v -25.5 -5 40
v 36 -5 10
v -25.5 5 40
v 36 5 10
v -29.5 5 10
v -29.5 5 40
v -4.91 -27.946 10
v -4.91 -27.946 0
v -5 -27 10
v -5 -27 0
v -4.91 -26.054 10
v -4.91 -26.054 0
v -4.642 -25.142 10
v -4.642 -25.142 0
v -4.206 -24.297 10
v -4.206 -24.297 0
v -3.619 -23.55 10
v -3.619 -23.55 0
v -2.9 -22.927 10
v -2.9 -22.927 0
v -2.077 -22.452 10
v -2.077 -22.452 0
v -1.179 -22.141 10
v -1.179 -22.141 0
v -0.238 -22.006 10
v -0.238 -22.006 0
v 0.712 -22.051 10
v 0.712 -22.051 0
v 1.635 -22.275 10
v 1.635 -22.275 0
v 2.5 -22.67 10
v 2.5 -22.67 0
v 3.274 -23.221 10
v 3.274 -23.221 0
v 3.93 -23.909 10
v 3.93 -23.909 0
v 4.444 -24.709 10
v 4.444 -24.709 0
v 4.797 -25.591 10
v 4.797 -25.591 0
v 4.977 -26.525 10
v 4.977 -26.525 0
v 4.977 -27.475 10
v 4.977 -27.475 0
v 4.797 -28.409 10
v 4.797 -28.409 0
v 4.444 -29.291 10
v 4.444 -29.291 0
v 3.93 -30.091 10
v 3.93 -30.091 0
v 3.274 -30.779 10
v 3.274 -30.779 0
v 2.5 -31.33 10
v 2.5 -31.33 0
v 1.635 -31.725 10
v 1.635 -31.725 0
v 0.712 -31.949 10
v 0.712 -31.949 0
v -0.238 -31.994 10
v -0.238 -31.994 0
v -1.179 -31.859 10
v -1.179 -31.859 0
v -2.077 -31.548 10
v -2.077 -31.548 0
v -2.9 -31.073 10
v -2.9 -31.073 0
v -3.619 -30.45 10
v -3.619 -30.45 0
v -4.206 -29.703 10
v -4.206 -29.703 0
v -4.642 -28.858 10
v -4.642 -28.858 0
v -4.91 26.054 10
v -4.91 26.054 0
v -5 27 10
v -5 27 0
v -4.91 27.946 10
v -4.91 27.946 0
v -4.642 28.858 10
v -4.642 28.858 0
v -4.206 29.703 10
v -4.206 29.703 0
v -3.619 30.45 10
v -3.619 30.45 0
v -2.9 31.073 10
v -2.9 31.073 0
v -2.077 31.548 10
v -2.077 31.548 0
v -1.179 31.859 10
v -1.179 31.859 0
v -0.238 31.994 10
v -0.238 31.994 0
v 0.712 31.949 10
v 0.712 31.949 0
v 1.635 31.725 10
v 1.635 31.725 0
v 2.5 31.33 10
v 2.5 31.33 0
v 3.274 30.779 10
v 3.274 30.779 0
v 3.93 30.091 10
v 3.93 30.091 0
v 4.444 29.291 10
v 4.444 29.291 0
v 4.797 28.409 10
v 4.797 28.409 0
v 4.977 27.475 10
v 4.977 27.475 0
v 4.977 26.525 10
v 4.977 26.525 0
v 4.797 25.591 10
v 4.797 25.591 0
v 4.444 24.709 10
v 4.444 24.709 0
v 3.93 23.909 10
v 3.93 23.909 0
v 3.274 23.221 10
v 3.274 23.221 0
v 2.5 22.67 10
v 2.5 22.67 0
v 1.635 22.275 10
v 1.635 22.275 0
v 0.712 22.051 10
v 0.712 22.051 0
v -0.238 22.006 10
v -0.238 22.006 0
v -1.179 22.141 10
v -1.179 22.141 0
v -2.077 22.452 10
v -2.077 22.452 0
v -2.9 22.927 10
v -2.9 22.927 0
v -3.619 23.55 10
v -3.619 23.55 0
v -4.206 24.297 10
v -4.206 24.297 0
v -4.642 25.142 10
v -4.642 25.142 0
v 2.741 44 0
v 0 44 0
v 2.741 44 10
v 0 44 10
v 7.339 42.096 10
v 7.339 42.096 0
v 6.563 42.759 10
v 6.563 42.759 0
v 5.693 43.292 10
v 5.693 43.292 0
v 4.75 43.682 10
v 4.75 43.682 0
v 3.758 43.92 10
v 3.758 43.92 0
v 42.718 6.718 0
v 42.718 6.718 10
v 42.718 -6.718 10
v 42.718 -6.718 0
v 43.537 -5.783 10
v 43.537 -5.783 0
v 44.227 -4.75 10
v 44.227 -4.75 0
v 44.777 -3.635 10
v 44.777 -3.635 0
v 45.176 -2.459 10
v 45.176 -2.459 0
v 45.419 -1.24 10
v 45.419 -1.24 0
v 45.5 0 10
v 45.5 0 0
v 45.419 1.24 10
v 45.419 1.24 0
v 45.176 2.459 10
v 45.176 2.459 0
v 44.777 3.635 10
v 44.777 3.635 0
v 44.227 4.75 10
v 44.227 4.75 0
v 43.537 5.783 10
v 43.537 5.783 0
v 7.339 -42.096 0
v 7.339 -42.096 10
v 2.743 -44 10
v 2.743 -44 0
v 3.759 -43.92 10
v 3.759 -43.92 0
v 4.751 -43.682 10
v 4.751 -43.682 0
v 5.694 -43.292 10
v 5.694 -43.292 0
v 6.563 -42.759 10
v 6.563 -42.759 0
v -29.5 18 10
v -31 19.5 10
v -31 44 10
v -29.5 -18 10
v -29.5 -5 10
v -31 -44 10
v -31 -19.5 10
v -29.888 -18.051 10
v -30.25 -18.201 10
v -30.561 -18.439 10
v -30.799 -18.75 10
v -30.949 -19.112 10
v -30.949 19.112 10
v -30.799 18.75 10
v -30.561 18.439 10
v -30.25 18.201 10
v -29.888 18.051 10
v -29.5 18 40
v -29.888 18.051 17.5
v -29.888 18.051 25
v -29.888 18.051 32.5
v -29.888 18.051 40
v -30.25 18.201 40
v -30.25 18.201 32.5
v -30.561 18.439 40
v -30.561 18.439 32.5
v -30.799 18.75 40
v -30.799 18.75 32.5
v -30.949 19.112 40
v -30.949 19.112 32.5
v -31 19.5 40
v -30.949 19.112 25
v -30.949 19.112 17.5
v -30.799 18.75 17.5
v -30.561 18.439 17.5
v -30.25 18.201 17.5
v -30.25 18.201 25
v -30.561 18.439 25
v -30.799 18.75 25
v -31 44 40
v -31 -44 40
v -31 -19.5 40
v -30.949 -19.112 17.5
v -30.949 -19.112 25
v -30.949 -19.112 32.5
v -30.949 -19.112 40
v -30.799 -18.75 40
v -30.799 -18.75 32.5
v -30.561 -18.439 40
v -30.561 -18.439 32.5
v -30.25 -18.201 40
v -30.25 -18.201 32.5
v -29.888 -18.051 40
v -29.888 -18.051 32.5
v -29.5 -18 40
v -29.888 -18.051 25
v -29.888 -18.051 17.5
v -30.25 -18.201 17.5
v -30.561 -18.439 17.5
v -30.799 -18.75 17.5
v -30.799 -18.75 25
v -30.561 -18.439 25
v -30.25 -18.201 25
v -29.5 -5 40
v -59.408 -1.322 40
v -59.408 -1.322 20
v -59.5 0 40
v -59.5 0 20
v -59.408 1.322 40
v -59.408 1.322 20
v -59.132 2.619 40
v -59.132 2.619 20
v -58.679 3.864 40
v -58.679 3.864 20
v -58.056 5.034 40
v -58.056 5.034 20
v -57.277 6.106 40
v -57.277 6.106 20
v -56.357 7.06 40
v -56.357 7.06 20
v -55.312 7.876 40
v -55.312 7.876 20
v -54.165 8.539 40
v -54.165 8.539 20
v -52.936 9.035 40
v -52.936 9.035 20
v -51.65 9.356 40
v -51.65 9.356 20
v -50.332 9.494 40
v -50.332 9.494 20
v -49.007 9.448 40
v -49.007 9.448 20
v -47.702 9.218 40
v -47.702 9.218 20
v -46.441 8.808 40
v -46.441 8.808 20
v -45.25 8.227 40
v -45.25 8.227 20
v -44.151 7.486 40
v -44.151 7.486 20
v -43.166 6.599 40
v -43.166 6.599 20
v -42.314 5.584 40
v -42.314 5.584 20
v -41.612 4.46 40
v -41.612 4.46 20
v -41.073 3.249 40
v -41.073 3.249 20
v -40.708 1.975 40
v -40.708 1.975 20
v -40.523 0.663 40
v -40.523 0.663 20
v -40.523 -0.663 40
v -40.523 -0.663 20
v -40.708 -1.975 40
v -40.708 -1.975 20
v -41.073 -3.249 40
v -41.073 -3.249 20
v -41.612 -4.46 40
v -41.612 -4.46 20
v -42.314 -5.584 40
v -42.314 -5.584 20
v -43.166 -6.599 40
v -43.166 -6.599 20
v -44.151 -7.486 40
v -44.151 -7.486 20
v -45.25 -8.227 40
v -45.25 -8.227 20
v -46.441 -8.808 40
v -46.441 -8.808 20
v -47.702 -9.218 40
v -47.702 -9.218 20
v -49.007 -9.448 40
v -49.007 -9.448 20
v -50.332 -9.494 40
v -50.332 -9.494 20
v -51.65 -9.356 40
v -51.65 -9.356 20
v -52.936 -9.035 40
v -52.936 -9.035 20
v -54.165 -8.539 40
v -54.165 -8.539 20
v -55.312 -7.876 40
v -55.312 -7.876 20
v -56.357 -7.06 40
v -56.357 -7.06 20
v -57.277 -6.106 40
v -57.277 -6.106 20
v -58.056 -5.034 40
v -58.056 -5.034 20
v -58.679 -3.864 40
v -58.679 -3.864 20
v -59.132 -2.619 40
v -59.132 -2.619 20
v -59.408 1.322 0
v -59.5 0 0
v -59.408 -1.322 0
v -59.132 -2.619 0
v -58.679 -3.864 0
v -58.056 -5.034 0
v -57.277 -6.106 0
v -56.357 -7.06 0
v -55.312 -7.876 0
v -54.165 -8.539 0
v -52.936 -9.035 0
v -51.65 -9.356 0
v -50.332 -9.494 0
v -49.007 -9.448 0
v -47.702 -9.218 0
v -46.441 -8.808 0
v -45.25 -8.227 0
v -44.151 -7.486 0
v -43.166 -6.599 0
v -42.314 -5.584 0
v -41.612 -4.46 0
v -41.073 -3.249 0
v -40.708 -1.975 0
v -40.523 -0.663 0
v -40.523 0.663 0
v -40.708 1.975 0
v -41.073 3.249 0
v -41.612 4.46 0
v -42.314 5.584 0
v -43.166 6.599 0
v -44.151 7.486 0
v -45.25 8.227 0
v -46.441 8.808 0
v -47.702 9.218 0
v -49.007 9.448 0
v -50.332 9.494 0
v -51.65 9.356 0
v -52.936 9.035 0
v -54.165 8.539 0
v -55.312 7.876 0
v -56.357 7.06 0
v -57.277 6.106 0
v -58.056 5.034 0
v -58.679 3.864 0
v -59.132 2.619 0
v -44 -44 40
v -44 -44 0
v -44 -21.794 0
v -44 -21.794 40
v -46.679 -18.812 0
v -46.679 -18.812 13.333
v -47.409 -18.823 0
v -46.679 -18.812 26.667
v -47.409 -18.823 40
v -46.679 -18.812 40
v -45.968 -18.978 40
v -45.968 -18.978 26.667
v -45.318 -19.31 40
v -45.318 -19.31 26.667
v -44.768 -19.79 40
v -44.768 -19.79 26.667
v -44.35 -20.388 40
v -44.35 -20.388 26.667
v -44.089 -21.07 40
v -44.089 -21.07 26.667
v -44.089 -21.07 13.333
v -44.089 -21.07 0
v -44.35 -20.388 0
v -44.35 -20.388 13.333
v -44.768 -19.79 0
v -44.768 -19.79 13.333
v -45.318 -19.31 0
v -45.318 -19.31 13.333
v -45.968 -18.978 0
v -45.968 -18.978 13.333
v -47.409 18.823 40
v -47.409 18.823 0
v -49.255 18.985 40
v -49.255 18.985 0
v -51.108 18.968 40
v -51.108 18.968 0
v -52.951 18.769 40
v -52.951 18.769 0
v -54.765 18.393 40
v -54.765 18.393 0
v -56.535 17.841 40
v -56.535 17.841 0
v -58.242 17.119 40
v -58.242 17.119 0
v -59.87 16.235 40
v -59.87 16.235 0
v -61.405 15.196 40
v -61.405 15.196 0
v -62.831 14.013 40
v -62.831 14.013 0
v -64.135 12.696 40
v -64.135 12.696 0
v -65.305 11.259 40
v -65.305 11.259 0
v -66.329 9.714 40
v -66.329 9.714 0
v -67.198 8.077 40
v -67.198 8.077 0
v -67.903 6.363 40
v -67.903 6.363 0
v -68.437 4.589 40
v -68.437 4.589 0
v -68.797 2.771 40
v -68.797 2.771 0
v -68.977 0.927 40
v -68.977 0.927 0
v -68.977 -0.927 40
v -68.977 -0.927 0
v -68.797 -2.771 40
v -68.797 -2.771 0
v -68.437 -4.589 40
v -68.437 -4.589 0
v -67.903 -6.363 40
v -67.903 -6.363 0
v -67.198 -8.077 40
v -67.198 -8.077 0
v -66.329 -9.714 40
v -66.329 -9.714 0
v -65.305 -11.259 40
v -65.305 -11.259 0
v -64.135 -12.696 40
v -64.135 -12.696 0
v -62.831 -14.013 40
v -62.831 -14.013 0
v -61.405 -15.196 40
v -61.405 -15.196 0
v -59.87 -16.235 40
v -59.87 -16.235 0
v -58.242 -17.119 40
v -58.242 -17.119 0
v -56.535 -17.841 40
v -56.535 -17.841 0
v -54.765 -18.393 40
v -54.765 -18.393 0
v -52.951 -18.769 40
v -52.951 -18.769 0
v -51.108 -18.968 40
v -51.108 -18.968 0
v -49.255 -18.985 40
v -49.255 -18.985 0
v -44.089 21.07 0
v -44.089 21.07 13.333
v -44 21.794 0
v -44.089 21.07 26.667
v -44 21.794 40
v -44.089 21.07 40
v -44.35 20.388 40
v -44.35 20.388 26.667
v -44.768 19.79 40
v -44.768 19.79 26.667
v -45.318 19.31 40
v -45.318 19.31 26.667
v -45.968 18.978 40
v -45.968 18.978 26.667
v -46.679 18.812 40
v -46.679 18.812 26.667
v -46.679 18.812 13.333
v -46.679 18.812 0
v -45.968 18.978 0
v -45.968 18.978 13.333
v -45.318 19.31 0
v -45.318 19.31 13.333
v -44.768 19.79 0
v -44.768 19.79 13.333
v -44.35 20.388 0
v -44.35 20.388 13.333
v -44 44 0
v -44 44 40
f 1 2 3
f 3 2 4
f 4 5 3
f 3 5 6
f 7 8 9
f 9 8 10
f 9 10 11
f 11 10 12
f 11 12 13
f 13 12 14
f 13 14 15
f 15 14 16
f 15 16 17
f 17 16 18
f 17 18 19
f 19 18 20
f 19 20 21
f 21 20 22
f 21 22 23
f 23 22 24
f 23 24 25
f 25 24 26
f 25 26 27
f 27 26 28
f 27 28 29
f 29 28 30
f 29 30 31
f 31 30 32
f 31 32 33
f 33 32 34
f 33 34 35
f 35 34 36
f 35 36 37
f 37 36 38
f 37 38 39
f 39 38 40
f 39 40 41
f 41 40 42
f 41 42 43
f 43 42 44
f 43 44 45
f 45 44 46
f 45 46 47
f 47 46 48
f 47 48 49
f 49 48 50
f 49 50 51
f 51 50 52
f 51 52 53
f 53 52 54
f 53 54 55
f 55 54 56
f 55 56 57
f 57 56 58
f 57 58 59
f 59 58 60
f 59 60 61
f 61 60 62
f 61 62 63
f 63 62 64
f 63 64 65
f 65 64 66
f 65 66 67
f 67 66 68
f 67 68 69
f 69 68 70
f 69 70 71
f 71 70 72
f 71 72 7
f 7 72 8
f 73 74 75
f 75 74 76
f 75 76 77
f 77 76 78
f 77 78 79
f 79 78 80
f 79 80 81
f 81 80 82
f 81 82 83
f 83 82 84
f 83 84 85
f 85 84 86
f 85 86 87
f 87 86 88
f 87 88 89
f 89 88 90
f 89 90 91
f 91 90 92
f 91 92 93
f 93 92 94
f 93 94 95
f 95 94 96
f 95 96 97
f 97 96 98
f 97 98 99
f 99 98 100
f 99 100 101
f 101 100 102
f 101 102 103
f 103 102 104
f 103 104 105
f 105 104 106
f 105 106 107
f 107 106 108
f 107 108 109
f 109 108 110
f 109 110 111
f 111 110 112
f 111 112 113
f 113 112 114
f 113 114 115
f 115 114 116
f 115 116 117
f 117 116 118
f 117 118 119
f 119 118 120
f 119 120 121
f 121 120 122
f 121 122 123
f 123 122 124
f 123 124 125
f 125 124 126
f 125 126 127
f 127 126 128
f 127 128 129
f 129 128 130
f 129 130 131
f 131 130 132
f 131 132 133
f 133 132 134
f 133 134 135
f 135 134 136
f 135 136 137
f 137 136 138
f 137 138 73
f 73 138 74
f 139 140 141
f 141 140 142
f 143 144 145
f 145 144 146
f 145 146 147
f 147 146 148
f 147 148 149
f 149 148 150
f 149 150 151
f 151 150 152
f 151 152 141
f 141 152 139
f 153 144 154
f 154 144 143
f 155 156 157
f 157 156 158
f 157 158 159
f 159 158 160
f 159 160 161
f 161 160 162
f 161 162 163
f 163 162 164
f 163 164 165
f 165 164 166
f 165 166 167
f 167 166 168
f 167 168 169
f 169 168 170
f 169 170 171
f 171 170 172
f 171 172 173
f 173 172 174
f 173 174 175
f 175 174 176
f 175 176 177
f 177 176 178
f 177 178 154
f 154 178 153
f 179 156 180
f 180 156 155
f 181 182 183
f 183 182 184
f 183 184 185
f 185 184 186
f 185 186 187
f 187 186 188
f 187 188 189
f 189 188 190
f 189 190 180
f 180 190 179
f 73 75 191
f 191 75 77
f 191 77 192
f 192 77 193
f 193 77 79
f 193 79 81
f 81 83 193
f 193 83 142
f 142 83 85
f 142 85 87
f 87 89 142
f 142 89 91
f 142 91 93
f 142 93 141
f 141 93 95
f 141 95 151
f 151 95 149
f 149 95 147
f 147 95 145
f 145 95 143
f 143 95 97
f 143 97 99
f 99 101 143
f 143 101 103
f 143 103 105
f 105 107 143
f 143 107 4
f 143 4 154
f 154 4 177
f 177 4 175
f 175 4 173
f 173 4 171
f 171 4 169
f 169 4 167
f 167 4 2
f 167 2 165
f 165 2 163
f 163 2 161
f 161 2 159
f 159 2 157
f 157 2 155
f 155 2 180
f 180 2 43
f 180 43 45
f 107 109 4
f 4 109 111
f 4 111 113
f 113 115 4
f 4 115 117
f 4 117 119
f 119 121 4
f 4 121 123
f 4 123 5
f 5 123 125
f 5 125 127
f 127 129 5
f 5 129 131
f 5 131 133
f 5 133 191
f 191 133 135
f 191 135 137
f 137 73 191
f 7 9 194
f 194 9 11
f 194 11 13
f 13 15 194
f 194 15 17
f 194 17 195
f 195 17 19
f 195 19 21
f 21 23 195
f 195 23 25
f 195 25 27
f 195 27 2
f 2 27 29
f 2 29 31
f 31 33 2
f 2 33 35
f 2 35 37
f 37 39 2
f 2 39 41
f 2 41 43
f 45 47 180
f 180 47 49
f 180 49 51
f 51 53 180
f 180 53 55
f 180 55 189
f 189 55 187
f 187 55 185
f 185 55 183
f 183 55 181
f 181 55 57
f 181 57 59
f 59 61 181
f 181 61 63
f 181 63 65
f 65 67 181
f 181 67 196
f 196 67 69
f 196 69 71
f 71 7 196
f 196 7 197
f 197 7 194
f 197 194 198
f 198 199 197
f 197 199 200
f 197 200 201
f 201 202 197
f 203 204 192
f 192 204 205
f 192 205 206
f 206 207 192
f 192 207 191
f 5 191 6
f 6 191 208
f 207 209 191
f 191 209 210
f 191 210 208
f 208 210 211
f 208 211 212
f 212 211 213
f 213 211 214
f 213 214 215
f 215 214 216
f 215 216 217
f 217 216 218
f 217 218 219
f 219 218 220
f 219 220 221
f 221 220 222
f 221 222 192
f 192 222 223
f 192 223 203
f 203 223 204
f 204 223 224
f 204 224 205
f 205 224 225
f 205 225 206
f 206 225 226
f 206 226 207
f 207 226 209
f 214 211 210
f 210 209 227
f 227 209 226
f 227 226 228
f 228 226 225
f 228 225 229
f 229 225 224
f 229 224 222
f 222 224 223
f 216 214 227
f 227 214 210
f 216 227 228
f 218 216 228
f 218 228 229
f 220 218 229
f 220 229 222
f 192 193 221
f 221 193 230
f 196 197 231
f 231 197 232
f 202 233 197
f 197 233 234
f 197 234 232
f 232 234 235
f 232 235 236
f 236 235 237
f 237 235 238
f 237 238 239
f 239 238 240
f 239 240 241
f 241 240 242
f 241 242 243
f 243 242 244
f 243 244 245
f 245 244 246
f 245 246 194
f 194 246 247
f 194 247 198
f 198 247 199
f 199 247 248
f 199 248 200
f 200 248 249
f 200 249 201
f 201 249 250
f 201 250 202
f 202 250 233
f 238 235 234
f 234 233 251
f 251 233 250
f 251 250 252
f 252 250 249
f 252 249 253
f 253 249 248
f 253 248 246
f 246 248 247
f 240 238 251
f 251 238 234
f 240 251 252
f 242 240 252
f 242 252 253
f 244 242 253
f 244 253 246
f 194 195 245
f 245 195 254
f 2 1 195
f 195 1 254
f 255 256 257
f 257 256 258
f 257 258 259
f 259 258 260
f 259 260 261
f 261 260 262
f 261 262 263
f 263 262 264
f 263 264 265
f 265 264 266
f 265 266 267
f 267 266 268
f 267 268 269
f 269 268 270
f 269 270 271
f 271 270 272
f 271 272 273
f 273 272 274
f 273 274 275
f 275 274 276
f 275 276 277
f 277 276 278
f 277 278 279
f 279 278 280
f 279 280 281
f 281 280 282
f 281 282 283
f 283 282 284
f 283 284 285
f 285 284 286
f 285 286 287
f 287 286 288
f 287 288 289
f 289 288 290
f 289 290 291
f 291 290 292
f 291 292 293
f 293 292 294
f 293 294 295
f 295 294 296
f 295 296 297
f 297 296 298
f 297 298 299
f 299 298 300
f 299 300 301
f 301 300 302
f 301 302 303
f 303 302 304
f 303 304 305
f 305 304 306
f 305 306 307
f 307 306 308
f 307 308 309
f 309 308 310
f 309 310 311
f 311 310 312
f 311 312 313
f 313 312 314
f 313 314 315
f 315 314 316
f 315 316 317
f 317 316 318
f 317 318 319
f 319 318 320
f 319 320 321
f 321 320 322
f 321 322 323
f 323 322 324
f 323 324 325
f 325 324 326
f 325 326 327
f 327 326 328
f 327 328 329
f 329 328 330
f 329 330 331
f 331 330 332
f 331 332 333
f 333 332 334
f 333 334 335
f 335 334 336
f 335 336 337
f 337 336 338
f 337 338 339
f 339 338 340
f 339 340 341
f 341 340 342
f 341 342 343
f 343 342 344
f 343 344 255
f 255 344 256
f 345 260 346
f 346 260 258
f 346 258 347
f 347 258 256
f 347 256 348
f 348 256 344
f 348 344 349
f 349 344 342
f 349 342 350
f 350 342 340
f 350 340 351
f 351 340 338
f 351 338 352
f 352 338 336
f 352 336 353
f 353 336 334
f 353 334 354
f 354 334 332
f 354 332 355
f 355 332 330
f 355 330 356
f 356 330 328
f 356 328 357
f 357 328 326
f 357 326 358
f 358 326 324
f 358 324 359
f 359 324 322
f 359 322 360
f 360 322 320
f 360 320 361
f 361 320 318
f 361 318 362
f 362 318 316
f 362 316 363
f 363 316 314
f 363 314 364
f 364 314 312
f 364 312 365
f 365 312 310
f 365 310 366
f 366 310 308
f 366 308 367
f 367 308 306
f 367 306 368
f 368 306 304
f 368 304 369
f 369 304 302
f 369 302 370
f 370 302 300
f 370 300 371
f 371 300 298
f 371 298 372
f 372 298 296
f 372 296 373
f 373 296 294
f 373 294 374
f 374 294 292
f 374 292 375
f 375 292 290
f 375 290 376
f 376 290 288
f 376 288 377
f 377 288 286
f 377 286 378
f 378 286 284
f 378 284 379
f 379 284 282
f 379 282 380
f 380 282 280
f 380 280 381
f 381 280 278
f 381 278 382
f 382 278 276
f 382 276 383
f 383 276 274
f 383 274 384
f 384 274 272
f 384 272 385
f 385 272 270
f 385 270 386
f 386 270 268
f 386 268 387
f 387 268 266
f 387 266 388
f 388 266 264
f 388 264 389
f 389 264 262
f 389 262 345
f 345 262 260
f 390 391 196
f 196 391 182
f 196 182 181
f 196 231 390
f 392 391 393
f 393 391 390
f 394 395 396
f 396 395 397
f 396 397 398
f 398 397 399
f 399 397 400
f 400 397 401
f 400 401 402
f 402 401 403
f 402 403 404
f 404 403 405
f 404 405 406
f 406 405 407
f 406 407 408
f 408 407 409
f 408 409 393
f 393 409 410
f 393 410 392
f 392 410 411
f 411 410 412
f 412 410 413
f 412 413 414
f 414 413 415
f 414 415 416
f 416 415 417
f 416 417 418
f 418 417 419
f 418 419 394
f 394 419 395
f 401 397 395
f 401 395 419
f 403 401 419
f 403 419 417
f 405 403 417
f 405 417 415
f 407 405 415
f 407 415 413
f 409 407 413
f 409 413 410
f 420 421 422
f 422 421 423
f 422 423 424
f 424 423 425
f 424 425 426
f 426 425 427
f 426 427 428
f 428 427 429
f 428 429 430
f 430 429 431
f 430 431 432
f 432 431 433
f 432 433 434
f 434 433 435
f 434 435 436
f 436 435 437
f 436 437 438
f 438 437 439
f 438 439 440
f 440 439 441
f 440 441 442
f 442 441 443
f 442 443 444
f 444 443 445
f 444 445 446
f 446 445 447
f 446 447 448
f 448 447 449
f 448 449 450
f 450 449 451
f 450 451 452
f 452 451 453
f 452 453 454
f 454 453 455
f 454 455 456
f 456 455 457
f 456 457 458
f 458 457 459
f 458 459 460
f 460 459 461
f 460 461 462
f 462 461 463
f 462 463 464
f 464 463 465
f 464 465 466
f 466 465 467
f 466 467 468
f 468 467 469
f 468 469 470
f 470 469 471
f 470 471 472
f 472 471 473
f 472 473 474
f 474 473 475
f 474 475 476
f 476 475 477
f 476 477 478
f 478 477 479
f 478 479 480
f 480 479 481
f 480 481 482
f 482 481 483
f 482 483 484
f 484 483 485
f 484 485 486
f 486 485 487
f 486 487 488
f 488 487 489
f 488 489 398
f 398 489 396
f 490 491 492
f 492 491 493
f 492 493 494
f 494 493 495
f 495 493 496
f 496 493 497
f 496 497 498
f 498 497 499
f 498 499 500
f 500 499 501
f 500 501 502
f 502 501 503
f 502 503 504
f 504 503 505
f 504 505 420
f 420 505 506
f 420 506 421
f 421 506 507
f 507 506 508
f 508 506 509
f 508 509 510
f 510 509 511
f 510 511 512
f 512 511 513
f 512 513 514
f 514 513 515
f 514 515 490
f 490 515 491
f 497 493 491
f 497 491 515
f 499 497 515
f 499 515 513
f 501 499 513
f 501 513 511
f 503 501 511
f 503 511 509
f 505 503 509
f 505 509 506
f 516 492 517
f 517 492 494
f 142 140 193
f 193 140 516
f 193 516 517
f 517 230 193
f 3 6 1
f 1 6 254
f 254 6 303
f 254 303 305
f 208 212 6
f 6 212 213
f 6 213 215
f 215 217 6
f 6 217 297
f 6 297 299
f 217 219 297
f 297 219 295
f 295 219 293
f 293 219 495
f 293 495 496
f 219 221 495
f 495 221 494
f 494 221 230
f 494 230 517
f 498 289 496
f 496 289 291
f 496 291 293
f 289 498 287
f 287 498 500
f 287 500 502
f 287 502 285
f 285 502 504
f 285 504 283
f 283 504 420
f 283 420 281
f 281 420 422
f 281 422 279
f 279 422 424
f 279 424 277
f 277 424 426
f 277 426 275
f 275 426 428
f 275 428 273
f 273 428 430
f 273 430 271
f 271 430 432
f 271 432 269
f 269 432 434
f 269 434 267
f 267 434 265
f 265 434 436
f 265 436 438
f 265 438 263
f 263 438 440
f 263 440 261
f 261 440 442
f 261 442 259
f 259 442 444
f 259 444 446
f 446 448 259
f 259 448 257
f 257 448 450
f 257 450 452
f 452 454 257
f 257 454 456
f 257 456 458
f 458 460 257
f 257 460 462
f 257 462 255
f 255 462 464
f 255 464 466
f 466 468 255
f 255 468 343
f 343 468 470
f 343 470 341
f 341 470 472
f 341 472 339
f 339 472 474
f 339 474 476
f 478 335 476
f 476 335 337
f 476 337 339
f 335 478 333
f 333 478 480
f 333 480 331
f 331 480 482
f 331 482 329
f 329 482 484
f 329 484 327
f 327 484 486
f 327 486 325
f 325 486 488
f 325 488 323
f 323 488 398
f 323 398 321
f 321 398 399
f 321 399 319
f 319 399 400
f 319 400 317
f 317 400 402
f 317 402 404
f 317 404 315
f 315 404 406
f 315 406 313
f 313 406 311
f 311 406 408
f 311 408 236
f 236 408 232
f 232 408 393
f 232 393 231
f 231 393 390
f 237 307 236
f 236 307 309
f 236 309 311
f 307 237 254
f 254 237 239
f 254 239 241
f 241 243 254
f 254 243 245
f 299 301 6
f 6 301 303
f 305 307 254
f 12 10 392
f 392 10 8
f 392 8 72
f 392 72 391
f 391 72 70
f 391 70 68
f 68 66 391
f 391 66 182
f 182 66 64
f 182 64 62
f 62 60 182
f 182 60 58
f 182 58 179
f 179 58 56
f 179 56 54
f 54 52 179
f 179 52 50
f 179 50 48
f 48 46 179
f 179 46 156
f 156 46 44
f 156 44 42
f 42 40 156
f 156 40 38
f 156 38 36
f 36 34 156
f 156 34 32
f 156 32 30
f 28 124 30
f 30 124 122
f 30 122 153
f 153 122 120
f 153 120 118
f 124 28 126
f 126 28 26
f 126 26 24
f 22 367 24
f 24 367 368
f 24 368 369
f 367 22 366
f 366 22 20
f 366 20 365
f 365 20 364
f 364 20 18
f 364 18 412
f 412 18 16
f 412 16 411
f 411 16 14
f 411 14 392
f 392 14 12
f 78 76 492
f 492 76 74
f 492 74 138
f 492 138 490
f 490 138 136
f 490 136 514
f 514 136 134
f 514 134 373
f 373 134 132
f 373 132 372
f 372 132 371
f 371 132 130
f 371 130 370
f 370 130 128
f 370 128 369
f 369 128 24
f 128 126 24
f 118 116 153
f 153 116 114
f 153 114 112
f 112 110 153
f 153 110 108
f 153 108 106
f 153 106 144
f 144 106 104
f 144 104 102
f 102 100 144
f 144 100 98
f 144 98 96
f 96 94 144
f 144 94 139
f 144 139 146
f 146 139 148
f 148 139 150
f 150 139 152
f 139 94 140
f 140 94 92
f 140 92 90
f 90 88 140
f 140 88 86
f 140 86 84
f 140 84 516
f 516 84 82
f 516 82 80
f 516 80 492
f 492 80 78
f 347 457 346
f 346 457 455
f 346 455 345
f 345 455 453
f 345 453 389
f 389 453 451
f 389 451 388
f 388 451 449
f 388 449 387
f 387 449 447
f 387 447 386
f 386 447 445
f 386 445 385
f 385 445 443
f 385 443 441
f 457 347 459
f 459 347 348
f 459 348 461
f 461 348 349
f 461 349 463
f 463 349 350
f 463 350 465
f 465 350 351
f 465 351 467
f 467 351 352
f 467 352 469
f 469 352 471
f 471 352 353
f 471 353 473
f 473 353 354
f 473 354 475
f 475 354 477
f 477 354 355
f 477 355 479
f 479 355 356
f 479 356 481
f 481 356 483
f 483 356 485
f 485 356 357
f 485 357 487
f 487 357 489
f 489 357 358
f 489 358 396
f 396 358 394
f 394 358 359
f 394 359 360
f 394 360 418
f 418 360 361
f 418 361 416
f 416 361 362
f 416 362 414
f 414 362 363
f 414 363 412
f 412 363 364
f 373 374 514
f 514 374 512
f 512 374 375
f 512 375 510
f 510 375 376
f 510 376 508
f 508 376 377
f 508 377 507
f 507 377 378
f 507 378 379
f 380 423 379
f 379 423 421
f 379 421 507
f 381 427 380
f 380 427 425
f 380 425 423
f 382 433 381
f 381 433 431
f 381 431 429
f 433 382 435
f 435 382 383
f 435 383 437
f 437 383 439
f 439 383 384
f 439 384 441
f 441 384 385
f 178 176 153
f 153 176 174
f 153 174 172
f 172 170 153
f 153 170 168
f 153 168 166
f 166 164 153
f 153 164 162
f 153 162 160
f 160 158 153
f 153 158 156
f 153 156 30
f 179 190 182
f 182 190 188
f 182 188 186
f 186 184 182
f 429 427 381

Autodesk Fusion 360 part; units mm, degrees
sketch "Sketch1" plane through (0, 0, 0) normal (0, 0, 1) x (1, 0, 0)
  circle A0 centre (-50, 0) radius 9.5
  arc A1 (-29.5, -18) -> (-31, -19.5) centre (-29.5, -19.5) ccw
  arc A2 (-31, 19.5) -> (-29.5, 18) centre (-29.5, 19.5) ccw
  line L0 (-31, 43) -> (-31, 19.5)
  line L1 (-31, -19.5) -> (-31, -43)
  line L2 (-24, 5) -> (-24, -5)
  line L3 (-50, 43) -> (-50, 44)
  line L4 (-44, 44) -> (2.7447, 44)
  line L5 (42, 44) -> (42, 43)
  line L6 (-50, -43) -> (-50, -44)
  line L7 (-31, -43) -> (-31, -44)
  line L8 (-24, -43) -> (-24, -44)
  line L9 (-13, -43) -> (-13, -44)
  line L10 (42, -43) -> (42, -44)
  line L11 (-13, 43) -> (-13, 44)
  line L12 (-24, 43) -> (-24, 44)
  line L13 (-31, 43) -> (-31, 44)
  line L14 (-31, 44) -> (-44, 44)
  arc A3 (-47.4091, 18.8225) -> (-47.4091, -18.8225) centre (-50, 0) ccw
  line L15 (-44, 44) -> (-44, 21.7945)
  line L16 (-44, -21.7945) -> (-44, -44)
  arc A4 (-47.4091, 18.8225) -> (-44, 21.7945) centre (-47, 21.7945) ccw
  arc A5 (-44, -21.7945) -> (-47.4091, -18.8225) centre (-47, -21.7945) ccw
  line L17 (-31, 44) -> (0, 44)
  line L18 (0, 44) -> (0, 43.393)
  circle A6 centre (0, 27) radius 5
  circle A7 centre (0, -27) radius 5
  line L19 (0, 44) -> (2.7426, 44)
  line L20 (36, 0) -> (36, 5)
  line L21 (36, 5) -> (-29.5, 5)
  line L22 (36, 5) -> (36, -5)
  line L23 (36, -5) -> (-29.5, -5)
  line L24 (45.5, -44) -> (42, -44)
  line L25 (42.7175, -6.7175) -> (7.3388, -42.0962)
  arc A8 (2.7426, -44) -> (7.3388, -42.0962) centre (2.7426, -37.5) ccw
  arc A9 (0, -31.607) -> (-0.6526, -31.9572) centre (2.7426, -37.5) ccw
  line L26 (0, -44) -> (0, -43.393)
  line L27 (0, -32) -> (0, -31.607)
  line L28 (-44, -44) -> (2.7426, -44)
  line L29 (42.7175, 6.7175) -> (7.3388, 42.0962)
  arc A10 (7.3388, 42.0962) -> (2.7406, 44) centre (2.7426, 37.5) ccw
  arc A11 (42.7175, -6.7175) -> (42.7175, 6.7175) centre (36, 0) ccw
  line L30 (36, 5) -> (36, -5)
  line L31 (36, -9.5) -> (36, -13.435)
  line L32 (-29.5, 18) -> (-29.5, 5)
  line L33 (-29.5, -5) -> (-29.5, -18)
  dimension "d10" = 19
  dimension "d11" = 19
  dimension "d18" = 3
  dimension "d19" = 3
  dimension "d22" = 92
  dimension "d25" = 88
  dimension "d26" = 13
  dimension "d28" = 6
  dimension "d29" = 6
  dimension "d30" = 20
  dimension "d31" = 31
  dimension "d32" = 17
  dimension "d33" = 17
  dimension "d34" = 10
  dimension "d35" = 10
  dimension "d38" = 19
  dimension "d43" = 13
  dimension "d47" = 13
extrude "Extrude5" add sketch "Sketch1" along normal blind 40 contours A1 A2 L0 L1 L2 L4 L7 L13 L14 A3 L15 L16 A4 A5 L21 L23 L28 L32 L33
extrude "Extrude6" add sketch "Sketch1" along normal blind 10 contours A1 A2 L0 L1 L4 L7 L13 L17 L19 L20 L21 L22 L23 L25 A8 L28 L29 A10 A11 L30 L32 L33
extrude "Extrude7" add sketch "Sketch1" along normal blind 40 contours L2 L20 L21 L22 L23 L30
sketch "Sketch3" plane through (0, -5, 0) normal (0, -1, 0) x (1, 0, 0)
  line L0 (-29.5, 10) -> (36, 10)
  line L1 (36, 10) -> (36, 40)
  line L2 (36, 40) -> (-29.5, 40)
  line L3 (-29.5, 40) -> (-29.5, 10)
  line L4 (-29.5, 40) -> (-25.5, 40)
  line L5 (-25.5, 40) -> (36, 10)
  dimension "d62" = 4
extrude "Extrude8" cut sketch "Sketch3" against normal blind 10 contours L1 L2 L5
extrude "Extrude2" [suppressed]
extrude "Extrude1" [suppressed]
extrude "Extrude3" [suppressed]
sketch "Sketch2" plane through (0, -5, 0) normal (0, -1, 0) x (1, 0, 0)
  line L0 (-29.5, 10) -> (36, 10)
  line L1 (36, 10) -> (36, 40)
  line L2 (36, 40) -> (-29.5, 40)
  line L3 (-29.5, 40) -> (-29.5, 10)
  line L4 (-29.5, 40) -> (36, 10)
extrude "Extrude4" [suppressed]
